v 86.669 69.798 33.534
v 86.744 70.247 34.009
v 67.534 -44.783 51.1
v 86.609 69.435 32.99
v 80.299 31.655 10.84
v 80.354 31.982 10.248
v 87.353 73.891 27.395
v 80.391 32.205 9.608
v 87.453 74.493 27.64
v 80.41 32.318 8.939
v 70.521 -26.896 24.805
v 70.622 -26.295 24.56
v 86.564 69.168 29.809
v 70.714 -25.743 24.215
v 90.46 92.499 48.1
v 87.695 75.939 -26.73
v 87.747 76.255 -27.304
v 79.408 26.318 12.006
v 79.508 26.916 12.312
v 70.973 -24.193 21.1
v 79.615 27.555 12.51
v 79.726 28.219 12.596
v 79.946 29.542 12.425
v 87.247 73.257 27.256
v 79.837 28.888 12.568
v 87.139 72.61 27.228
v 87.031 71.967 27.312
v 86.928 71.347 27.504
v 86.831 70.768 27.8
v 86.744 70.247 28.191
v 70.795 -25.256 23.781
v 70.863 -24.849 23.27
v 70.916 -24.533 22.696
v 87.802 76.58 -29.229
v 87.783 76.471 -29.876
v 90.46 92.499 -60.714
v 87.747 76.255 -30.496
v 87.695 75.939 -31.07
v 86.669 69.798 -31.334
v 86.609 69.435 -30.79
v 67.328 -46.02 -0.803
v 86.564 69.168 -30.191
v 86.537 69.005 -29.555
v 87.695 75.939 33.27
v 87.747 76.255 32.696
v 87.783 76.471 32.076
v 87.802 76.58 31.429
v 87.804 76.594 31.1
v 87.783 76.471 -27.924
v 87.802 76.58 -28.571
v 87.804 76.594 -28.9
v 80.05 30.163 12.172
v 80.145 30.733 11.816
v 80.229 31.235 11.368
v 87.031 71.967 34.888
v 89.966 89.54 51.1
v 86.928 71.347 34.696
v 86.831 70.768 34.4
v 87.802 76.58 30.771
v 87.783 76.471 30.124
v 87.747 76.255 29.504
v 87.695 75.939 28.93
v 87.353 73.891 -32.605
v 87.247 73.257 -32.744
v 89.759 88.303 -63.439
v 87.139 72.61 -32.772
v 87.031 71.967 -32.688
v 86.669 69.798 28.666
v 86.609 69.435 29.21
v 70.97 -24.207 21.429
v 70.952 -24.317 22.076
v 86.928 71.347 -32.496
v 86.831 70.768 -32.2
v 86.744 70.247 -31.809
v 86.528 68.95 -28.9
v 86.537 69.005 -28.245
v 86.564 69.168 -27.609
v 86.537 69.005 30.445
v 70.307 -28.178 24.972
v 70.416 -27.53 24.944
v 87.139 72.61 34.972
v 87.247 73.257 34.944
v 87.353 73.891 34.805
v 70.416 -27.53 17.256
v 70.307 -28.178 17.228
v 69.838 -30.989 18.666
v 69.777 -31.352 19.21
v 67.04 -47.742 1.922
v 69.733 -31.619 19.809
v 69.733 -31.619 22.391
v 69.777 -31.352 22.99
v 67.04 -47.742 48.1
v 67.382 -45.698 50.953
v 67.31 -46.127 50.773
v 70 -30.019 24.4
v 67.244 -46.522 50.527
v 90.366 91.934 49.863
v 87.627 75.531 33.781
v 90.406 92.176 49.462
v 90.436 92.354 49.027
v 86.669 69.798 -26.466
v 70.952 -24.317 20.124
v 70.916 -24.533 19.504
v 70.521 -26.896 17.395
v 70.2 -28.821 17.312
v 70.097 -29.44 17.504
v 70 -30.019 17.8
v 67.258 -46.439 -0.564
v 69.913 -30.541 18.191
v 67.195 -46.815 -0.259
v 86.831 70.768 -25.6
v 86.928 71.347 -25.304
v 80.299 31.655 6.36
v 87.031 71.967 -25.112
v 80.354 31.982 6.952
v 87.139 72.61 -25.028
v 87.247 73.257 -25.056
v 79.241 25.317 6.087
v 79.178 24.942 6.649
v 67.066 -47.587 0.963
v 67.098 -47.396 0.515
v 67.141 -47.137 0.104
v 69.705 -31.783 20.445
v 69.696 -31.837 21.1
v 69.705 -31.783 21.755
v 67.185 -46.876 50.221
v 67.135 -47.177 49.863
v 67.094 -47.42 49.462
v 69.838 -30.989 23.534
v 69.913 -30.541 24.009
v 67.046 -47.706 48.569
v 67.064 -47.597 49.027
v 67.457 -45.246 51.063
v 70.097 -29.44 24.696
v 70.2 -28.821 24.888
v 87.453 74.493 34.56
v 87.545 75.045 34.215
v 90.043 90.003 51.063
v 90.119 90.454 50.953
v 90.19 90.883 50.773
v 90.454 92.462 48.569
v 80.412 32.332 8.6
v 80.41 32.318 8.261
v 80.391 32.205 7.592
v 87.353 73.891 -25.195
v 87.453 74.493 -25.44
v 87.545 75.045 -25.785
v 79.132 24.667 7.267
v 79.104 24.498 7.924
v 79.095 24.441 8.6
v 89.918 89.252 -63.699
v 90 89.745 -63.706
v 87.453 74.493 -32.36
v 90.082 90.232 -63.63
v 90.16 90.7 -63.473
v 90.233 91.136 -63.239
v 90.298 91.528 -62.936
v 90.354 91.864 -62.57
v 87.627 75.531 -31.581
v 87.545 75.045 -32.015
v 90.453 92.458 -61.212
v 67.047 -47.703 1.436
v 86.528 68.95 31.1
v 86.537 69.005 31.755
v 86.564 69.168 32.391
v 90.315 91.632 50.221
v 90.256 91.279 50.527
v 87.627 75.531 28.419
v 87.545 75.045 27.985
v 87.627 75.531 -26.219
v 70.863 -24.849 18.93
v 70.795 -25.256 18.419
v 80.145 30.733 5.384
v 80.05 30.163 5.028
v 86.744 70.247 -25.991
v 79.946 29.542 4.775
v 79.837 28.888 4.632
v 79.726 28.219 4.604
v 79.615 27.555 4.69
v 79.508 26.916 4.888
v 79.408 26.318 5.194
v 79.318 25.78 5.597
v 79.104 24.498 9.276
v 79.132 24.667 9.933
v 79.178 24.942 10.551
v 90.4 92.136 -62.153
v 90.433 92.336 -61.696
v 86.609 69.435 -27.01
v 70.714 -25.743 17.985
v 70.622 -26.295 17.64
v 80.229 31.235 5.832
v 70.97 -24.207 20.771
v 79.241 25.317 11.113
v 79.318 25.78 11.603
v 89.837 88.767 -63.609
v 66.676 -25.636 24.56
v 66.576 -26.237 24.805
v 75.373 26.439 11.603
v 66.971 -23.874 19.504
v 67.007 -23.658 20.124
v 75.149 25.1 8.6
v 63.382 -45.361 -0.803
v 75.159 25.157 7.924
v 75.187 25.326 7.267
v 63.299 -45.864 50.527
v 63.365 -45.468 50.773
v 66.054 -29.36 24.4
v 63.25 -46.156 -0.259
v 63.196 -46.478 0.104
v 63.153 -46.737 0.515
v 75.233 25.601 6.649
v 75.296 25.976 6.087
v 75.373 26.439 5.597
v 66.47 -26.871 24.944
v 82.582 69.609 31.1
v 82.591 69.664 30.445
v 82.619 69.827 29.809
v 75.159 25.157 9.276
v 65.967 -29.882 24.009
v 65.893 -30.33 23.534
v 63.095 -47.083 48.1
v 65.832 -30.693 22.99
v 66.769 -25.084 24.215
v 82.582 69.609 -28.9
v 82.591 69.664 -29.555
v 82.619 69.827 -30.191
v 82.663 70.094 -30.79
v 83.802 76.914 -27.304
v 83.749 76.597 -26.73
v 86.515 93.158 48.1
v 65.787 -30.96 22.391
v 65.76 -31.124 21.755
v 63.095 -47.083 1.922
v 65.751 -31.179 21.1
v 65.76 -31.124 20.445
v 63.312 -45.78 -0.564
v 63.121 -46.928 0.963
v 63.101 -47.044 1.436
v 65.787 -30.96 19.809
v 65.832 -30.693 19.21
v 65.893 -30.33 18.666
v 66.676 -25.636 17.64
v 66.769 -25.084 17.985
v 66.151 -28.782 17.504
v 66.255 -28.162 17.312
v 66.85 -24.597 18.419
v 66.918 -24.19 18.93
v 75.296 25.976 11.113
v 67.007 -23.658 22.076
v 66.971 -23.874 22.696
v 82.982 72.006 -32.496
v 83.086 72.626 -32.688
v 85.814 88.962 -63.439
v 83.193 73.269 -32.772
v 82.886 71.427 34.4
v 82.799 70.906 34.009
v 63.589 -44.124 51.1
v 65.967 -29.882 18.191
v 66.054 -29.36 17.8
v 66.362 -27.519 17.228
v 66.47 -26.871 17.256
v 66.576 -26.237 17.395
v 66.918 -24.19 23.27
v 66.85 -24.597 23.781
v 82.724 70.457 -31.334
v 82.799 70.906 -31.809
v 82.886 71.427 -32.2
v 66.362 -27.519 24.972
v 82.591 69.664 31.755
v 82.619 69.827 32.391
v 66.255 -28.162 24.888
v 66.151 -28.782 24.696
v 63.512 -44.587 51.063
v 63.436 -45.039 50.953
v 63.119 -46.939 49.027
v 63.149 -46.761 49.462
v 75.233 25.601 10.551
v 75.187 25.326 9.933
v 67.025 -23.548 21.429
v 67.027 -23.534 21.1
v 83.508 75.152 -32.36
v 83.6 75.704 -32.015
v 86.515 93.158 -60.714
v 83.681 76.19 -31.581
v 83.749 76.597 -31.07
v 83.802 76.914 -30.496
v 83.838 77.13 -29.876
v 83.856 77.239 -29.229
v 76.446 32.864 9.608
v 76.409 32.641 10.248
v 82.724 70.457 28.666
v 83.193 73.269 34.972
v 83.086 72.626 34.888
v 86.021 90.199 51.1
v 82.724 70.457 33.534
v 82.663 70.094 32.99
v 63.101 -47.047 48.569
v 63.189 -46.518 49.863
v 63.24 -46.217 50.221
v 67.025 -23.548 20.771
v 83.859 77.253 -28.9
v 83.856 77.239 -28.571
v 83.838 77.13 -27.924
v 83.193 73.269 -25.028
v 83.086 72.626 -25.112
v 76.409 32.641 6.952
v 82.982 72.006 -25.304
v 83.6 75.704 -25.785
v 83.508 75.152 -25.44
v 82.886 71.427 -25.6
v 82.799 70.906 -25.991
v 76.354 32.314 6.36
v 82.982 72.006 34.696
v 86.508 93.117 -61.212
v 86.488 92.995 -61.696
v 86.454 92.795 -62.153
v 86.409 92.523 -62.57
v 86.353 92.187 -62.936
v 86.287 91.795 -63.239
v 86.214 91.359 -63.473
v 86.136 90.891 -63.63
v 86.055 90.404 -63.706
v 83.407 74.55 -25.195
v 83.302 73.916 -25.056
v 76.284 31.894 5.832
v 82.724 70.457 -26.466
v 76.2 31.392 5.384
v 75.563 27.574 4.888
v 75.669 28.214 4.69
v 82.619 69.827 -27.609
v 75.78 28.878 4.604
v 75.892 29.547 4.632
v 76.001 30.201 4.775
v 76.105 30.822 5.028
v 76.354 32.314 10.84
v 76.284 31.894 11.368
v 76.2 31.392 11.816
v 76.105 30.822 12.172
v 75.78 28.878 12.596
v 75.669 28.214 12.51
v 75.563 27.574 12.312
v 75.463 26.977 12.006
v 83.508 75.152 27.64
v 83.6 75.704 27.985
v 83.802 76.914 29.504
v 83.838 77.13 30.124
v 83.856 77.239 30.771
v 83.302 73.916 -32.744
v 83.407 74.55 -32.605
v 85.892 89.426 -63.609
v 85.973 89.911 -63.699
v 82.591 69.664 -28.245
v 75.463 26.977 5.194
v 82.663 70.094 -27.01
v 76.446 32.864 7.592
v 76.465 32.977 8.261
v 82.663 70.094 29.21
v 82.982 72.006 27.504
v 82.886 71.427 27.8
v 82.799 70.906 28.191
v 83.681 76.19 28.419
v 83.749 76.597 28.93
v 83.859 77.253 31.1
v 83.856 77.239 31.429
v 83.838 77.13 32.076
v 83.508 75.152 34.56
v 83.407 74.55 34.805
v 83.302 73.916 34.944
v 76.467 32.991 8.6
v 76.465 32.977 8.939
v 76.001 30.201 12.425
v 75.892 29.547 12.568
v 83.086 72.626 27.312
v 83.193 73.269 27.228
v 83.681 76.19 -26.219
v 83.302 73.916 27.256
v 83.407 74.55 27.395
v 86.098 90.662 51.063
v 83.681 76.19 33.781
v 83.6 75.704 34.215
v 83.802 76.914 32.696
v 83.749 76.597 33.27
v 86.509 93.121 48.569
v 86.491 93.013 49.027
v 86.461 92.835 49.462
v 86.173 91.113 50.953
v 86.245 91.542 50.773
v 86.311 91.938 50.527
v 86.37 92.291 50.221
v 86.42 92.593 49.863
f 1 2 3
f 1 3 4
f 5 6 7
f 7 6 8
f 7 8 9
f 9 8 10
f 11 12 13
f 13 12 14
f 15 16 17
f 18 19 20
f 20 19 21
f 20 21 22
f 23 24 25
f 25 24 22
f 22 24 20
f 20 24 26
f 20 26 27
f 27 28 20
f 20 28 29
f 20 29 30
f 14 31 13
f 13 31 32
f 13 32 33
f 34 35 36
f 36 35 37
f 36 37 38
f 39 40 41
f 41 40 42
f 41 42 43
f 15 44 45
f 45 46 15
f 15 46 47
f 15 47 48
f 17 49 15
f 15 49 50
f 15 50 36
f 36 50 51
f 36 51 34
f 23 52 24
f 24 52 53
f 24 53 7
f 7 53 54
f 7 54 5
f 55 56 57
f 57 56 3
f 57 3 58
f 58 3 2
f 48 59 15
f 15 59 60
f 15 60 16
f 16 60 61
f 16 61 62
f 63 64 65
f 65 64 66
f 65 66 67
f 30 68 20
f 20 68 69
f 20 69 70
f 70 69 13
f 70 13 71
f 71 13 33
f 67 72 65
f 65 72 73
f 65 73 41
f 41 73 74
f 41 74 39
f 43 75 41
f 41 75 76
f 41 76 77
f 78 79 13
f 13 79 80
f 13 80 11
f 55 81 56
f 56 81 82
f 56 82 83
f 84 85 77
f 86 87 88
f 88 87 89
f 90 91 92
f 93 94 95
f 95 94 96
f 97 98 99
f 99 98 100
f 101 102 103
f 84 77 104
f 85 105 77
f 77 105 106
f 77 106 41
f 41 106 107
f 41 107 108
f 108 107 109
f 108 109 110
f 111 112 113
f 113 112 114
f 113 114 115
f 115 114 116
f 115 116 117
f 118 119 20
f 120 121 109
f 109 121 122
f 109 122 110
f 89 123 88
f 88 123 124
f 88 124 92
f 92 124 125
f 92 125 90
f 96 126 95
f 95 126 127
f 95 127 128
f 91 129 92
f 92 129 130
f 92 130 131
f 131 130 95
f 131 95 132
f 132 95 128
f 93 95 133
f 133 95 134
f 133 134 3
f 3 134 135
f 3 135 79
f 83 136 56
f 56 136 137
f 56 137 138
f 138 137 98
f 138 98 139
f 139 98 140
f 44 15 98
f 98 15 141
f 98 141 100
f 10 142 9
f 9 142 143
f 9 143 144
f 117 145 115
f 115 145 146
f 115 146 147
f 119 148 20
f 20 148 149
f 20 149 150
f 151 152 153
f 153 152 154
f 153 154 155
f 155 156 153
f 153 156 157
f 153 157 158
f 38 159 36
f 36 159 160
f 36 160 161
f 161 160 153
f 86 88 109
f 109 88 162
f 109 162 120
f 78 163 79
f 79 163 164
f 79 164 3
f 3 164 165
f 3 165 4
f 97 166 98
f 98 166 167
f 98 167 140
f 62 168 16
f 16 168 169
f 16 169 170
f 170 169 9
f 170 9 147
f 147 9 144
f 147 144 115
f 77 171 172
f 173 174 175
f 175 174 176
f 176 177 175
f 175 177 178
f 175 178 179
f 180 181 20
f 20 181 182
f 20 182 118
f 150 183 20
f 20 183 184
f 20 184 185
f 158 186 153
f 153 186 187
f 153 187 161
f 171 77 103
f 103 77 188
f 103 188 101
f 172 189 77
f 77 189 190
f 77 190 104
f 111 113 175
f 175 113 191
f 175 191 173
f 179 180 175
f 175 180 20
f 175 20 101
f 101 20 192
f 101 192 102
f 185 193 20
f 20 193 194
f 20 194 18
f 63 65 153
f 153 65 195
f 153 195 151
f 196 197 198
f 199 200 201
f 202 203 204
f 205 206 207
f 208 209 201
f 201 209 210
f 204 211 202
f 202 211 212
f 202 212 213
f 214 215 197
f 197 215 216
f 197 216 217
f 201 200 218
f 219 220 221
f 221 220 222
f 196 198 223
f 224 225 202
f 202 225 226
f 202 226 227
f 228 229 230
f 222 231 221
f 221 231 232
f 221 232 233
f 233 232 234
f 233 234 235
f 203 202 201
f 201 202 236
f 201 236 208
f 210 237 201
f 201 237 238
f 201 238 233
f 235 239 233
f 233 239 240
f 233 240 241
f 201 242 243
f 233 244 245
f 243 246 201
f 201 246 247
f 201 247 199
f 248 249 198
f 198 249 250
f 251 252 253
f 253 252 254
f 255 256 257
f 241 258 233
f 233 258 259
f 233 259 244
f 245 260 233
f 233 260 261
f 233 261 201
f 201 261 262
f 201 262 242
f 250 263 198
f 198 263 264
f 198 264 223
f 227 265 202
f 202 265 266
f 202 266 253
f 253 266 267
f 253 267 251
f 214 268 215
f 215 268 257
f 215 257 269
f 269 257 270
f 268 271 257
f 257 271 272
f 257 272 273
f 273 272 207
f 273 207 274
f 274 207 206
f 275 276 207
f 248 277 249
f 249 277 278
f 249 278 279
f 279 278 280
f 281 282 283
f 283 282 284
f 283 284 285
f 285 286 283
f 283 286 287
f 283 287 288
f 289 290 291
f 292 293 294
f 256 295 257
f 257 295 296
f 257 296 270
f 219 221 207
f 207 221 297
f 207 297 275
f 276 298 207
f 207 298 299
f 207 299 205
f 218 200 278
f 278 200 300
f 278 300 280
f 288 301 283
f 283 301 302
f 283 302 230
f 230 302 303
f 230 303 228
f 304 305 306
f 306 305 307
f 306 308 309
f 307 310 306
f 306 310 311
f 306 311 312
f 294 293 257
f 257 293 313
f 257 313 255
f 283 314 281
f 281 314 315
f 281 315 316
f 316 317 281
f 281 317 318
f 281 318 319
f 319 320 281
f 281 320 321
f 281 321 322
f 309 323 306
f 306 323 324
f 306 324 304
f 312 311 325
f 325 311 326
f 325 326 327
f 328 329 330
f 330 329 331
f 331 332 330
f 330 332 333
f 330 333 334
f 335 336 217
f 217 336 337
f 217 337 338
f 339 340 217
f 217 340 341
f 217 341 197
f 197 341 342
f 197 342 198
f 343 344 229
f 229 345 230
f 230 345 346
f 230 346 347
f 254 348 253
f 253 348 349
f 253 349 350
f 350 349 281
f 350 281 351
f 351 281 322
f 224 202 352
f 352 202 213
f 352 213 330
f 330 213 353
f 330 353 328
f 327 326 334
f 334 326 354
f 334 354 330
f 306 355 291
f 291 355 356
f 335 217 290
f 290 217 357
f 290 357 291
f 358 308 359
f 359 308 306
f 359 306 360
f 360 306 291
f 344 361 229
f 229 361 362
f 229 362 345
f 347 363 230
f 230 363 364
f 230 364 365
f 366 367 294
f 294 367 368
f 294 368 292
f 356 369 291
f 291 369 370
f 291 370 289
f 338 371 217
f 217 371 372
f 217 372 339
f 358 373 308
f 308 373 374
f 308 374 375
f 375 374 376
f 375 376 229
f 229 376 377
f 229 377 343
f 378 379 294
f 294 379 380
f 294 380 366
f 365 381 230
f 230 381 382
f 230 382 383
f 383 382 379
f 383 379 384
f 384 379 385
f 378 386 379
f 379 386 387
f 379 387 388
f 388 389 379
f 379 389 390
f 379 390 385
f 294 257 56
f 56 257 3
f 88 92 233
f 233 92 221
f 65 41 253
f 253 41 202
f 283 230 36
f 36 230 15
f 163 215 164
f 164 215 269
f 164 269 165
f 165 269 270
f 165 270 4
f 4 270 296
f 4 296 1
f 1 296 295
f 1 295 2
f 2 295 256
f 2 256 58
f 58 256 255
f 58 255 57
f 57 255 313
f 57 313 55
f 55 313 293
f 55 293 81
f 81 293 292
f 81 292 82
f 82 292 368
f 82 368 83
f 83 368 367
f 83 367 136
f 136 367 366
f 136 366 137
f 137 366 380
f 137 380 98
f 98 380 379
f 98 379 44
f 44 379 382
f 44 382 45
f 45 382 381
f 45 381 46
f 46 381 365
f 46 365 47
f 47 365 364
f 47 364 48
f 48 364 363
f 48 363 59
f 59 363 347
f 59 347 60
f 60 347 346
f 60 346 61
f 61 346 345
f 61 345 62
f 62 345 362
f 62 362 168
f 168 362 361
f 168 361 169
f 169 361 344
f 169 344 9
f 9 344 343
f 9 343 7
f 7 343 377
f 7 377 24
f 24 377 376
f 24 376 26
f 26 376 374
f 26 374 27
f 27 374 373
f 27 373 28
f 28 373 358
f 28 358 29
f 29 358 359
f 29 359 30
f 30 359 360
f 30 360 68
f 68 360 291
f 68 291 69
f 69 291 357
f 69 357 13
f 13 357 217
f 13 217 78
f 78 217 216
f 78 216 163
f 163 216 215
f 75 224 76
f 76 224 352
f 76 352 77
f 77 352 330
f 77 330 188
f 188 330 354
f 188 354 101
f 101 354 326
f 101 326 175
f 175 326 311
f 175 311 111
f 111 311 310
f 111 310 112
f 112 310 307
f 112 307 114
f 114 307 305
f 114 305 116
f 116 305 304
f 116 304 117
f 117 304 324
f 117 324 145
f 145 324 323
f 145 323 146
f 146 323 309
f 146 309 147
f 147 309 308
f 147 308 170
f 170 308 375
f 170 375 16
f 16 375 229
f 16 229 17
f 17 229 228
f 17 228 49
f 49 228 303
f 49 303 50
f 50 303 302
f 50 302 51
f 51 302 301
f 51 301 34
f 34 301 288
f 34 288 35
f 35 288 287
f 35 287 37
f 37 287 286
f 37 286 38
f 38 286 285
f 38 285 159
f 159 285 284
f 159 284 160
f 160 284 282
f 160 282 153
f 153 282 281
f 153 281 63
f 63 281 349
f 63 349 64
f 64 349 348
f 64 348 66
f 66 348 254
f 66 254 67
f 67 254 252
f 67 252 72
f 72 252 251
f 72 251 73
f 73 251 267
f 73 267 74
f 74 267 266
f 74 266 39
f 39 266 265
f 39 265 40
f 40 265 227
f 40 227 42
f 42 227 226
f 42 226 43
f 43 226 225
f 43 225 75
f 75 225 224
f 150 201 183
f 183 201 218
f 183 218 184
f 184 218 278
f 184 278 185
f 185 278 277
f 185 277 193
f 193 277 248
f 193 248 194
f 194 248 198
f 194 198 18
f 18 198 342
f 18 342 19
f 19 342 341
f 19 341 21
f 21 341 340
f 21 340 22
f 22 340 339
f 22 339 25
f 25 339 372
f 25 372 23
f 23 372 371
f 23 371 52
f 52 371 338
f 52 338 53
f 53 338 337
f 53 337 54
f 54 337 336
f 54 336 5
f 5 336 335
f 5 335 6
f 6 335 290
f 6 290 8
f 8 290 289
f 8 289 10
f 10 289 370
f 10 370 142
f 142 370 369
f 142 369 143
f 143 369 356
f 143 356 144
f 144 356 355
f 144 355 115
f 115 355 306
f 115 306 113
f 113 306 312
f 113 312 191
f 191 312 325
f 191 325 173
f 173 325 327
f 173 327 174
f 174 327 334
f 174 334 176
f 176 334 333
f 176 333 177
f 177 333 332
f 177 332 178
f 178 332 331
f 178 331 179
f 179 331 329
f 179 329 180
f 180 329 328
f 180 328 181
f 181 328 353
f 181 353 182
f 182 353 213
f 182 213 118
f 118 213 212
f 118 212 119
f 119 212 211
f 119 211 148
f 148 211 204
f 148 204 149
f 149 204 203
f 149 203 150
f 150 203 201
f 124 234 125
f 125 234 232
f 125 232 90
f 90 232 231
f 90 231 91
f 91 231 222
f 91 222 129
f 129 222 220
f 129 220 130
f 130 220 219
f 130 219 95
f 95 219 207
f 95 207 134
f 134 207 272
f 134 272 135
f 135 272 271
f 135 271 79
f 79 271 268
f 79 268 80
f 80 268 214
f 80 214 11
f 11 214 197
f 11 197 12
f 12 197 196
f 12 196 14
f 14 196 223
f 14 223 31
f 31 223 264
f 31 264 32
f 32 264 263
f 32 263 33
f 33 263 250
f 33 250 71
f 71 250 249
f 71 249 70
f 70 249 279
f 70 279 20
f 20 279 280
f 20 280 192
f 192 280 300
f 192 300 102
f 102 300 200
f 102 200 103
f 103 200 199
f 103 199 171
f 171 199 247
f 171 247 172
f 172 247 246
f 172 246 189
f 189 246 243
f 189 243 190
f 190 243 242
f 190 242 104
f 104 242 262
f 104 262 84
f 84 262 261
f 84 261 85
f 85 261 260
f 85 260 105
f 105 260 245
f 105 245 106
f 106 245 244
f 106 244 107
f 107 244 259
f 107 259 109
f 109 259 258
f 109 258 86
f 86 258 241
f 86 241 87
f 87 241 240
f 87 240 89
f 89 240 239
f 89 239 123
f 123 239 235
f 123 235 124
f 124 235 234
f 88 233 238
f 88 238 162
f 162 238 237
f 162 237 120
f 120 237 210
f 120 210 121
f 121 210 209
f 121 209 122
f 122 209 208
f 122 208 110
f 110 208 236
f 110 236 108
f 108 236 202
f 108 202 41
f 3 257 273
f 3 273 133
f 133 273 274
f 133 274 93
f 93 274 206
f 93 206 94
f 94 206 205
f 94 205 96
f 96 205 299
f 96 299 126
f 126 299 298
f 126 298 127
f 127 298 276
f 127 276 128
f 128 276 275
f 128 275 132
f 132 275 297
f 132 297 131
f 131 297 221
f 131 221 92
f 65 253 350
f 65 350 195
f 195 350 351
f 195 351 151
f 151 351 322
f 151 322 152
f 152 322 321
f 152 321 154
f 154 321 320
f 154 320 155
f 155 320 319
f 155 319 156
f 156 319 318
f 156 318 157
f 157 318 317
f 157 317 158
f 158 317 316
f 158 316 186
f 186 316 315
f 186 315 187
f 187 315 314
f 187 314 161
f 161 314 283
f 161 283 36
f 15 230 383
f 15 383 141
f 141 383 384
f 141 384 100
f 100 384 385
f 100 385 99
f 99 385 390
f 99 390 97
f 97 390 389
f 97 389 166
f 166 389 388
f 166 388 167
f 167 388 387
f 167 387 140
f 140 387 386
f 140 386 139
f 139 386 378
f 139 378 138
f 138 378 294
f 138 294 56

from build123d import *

# Parameters (mm, degrees)
BOSS_EXTRUDE2_START = 10
SKETCH5_R           = 3.875
SKETCH5_R_2         = 4
BOSS_EXTRUDE2_DEPTH = 4
FILLET1_R           = 3
FILLET2_R           = 3


with BuildPart() as part:
    # Sketch5 → Boss-Extrude2 (new body)
    with BuildSketch(Plane(origin=(59.169020247, -9.881108749, 0), x_dir=(0, 0, -1), z_dir=(0.9863408748405357, -0.16471696518211734, 0)).offset(BOSS_EXTRUDE2_START)):
        Polygon((-51.1, 106.13567165), (65.395465612, 106.13567165), (0, -36.047454034), (-51.1, -36.047454034), align=None)
        with Locations(Location((-31.1, 86.13567165, 0), (0, 0, 90))):
            Circle(SKETCH5_R, mode=Mode.SUBTRACT)
        with Locations(Location((28.9, 86.13567165, 0), (0, 0, 90))):
            Circle(SKETCH5_R, mode=Mode.SUBTRACT)
        with Locations(Location((-8.6, 41.13567165, 0), (0, 0, 90))):
            Circle(SKETCH5_R_2, mode=Mode.SUBTRACT)
        with Locations(Location((-21.1, -16.047454034, 0), (0, 0, 90))):
            Circle(SKETCH5_R, mode=Mode.SUBTRACT)
    extrude(amount=BOSS_EXTRUDE2_DEPTH)

    # Fillet1
    fillet1_edges = [part.edges().sort_by_distance(p)[0] for p in [
        (65.067483514, -47.412789679, 0),
        (65.067483514, -47.412789679, 51.1),
    ]]
    fillet(fillet1_edges, radius=FILLET1_R)

    # Fillet2
    fillet2_edges = [part.edges().sort_by_distance(p)[0] for p in [
        (88.487456476, 92.828238896, 51.1),
        (88.487456476, 92.828238896, -65.395465612),
    ]]
    fillet(fillet2_edges, radius=FILLET2_R)


solid = part.part
